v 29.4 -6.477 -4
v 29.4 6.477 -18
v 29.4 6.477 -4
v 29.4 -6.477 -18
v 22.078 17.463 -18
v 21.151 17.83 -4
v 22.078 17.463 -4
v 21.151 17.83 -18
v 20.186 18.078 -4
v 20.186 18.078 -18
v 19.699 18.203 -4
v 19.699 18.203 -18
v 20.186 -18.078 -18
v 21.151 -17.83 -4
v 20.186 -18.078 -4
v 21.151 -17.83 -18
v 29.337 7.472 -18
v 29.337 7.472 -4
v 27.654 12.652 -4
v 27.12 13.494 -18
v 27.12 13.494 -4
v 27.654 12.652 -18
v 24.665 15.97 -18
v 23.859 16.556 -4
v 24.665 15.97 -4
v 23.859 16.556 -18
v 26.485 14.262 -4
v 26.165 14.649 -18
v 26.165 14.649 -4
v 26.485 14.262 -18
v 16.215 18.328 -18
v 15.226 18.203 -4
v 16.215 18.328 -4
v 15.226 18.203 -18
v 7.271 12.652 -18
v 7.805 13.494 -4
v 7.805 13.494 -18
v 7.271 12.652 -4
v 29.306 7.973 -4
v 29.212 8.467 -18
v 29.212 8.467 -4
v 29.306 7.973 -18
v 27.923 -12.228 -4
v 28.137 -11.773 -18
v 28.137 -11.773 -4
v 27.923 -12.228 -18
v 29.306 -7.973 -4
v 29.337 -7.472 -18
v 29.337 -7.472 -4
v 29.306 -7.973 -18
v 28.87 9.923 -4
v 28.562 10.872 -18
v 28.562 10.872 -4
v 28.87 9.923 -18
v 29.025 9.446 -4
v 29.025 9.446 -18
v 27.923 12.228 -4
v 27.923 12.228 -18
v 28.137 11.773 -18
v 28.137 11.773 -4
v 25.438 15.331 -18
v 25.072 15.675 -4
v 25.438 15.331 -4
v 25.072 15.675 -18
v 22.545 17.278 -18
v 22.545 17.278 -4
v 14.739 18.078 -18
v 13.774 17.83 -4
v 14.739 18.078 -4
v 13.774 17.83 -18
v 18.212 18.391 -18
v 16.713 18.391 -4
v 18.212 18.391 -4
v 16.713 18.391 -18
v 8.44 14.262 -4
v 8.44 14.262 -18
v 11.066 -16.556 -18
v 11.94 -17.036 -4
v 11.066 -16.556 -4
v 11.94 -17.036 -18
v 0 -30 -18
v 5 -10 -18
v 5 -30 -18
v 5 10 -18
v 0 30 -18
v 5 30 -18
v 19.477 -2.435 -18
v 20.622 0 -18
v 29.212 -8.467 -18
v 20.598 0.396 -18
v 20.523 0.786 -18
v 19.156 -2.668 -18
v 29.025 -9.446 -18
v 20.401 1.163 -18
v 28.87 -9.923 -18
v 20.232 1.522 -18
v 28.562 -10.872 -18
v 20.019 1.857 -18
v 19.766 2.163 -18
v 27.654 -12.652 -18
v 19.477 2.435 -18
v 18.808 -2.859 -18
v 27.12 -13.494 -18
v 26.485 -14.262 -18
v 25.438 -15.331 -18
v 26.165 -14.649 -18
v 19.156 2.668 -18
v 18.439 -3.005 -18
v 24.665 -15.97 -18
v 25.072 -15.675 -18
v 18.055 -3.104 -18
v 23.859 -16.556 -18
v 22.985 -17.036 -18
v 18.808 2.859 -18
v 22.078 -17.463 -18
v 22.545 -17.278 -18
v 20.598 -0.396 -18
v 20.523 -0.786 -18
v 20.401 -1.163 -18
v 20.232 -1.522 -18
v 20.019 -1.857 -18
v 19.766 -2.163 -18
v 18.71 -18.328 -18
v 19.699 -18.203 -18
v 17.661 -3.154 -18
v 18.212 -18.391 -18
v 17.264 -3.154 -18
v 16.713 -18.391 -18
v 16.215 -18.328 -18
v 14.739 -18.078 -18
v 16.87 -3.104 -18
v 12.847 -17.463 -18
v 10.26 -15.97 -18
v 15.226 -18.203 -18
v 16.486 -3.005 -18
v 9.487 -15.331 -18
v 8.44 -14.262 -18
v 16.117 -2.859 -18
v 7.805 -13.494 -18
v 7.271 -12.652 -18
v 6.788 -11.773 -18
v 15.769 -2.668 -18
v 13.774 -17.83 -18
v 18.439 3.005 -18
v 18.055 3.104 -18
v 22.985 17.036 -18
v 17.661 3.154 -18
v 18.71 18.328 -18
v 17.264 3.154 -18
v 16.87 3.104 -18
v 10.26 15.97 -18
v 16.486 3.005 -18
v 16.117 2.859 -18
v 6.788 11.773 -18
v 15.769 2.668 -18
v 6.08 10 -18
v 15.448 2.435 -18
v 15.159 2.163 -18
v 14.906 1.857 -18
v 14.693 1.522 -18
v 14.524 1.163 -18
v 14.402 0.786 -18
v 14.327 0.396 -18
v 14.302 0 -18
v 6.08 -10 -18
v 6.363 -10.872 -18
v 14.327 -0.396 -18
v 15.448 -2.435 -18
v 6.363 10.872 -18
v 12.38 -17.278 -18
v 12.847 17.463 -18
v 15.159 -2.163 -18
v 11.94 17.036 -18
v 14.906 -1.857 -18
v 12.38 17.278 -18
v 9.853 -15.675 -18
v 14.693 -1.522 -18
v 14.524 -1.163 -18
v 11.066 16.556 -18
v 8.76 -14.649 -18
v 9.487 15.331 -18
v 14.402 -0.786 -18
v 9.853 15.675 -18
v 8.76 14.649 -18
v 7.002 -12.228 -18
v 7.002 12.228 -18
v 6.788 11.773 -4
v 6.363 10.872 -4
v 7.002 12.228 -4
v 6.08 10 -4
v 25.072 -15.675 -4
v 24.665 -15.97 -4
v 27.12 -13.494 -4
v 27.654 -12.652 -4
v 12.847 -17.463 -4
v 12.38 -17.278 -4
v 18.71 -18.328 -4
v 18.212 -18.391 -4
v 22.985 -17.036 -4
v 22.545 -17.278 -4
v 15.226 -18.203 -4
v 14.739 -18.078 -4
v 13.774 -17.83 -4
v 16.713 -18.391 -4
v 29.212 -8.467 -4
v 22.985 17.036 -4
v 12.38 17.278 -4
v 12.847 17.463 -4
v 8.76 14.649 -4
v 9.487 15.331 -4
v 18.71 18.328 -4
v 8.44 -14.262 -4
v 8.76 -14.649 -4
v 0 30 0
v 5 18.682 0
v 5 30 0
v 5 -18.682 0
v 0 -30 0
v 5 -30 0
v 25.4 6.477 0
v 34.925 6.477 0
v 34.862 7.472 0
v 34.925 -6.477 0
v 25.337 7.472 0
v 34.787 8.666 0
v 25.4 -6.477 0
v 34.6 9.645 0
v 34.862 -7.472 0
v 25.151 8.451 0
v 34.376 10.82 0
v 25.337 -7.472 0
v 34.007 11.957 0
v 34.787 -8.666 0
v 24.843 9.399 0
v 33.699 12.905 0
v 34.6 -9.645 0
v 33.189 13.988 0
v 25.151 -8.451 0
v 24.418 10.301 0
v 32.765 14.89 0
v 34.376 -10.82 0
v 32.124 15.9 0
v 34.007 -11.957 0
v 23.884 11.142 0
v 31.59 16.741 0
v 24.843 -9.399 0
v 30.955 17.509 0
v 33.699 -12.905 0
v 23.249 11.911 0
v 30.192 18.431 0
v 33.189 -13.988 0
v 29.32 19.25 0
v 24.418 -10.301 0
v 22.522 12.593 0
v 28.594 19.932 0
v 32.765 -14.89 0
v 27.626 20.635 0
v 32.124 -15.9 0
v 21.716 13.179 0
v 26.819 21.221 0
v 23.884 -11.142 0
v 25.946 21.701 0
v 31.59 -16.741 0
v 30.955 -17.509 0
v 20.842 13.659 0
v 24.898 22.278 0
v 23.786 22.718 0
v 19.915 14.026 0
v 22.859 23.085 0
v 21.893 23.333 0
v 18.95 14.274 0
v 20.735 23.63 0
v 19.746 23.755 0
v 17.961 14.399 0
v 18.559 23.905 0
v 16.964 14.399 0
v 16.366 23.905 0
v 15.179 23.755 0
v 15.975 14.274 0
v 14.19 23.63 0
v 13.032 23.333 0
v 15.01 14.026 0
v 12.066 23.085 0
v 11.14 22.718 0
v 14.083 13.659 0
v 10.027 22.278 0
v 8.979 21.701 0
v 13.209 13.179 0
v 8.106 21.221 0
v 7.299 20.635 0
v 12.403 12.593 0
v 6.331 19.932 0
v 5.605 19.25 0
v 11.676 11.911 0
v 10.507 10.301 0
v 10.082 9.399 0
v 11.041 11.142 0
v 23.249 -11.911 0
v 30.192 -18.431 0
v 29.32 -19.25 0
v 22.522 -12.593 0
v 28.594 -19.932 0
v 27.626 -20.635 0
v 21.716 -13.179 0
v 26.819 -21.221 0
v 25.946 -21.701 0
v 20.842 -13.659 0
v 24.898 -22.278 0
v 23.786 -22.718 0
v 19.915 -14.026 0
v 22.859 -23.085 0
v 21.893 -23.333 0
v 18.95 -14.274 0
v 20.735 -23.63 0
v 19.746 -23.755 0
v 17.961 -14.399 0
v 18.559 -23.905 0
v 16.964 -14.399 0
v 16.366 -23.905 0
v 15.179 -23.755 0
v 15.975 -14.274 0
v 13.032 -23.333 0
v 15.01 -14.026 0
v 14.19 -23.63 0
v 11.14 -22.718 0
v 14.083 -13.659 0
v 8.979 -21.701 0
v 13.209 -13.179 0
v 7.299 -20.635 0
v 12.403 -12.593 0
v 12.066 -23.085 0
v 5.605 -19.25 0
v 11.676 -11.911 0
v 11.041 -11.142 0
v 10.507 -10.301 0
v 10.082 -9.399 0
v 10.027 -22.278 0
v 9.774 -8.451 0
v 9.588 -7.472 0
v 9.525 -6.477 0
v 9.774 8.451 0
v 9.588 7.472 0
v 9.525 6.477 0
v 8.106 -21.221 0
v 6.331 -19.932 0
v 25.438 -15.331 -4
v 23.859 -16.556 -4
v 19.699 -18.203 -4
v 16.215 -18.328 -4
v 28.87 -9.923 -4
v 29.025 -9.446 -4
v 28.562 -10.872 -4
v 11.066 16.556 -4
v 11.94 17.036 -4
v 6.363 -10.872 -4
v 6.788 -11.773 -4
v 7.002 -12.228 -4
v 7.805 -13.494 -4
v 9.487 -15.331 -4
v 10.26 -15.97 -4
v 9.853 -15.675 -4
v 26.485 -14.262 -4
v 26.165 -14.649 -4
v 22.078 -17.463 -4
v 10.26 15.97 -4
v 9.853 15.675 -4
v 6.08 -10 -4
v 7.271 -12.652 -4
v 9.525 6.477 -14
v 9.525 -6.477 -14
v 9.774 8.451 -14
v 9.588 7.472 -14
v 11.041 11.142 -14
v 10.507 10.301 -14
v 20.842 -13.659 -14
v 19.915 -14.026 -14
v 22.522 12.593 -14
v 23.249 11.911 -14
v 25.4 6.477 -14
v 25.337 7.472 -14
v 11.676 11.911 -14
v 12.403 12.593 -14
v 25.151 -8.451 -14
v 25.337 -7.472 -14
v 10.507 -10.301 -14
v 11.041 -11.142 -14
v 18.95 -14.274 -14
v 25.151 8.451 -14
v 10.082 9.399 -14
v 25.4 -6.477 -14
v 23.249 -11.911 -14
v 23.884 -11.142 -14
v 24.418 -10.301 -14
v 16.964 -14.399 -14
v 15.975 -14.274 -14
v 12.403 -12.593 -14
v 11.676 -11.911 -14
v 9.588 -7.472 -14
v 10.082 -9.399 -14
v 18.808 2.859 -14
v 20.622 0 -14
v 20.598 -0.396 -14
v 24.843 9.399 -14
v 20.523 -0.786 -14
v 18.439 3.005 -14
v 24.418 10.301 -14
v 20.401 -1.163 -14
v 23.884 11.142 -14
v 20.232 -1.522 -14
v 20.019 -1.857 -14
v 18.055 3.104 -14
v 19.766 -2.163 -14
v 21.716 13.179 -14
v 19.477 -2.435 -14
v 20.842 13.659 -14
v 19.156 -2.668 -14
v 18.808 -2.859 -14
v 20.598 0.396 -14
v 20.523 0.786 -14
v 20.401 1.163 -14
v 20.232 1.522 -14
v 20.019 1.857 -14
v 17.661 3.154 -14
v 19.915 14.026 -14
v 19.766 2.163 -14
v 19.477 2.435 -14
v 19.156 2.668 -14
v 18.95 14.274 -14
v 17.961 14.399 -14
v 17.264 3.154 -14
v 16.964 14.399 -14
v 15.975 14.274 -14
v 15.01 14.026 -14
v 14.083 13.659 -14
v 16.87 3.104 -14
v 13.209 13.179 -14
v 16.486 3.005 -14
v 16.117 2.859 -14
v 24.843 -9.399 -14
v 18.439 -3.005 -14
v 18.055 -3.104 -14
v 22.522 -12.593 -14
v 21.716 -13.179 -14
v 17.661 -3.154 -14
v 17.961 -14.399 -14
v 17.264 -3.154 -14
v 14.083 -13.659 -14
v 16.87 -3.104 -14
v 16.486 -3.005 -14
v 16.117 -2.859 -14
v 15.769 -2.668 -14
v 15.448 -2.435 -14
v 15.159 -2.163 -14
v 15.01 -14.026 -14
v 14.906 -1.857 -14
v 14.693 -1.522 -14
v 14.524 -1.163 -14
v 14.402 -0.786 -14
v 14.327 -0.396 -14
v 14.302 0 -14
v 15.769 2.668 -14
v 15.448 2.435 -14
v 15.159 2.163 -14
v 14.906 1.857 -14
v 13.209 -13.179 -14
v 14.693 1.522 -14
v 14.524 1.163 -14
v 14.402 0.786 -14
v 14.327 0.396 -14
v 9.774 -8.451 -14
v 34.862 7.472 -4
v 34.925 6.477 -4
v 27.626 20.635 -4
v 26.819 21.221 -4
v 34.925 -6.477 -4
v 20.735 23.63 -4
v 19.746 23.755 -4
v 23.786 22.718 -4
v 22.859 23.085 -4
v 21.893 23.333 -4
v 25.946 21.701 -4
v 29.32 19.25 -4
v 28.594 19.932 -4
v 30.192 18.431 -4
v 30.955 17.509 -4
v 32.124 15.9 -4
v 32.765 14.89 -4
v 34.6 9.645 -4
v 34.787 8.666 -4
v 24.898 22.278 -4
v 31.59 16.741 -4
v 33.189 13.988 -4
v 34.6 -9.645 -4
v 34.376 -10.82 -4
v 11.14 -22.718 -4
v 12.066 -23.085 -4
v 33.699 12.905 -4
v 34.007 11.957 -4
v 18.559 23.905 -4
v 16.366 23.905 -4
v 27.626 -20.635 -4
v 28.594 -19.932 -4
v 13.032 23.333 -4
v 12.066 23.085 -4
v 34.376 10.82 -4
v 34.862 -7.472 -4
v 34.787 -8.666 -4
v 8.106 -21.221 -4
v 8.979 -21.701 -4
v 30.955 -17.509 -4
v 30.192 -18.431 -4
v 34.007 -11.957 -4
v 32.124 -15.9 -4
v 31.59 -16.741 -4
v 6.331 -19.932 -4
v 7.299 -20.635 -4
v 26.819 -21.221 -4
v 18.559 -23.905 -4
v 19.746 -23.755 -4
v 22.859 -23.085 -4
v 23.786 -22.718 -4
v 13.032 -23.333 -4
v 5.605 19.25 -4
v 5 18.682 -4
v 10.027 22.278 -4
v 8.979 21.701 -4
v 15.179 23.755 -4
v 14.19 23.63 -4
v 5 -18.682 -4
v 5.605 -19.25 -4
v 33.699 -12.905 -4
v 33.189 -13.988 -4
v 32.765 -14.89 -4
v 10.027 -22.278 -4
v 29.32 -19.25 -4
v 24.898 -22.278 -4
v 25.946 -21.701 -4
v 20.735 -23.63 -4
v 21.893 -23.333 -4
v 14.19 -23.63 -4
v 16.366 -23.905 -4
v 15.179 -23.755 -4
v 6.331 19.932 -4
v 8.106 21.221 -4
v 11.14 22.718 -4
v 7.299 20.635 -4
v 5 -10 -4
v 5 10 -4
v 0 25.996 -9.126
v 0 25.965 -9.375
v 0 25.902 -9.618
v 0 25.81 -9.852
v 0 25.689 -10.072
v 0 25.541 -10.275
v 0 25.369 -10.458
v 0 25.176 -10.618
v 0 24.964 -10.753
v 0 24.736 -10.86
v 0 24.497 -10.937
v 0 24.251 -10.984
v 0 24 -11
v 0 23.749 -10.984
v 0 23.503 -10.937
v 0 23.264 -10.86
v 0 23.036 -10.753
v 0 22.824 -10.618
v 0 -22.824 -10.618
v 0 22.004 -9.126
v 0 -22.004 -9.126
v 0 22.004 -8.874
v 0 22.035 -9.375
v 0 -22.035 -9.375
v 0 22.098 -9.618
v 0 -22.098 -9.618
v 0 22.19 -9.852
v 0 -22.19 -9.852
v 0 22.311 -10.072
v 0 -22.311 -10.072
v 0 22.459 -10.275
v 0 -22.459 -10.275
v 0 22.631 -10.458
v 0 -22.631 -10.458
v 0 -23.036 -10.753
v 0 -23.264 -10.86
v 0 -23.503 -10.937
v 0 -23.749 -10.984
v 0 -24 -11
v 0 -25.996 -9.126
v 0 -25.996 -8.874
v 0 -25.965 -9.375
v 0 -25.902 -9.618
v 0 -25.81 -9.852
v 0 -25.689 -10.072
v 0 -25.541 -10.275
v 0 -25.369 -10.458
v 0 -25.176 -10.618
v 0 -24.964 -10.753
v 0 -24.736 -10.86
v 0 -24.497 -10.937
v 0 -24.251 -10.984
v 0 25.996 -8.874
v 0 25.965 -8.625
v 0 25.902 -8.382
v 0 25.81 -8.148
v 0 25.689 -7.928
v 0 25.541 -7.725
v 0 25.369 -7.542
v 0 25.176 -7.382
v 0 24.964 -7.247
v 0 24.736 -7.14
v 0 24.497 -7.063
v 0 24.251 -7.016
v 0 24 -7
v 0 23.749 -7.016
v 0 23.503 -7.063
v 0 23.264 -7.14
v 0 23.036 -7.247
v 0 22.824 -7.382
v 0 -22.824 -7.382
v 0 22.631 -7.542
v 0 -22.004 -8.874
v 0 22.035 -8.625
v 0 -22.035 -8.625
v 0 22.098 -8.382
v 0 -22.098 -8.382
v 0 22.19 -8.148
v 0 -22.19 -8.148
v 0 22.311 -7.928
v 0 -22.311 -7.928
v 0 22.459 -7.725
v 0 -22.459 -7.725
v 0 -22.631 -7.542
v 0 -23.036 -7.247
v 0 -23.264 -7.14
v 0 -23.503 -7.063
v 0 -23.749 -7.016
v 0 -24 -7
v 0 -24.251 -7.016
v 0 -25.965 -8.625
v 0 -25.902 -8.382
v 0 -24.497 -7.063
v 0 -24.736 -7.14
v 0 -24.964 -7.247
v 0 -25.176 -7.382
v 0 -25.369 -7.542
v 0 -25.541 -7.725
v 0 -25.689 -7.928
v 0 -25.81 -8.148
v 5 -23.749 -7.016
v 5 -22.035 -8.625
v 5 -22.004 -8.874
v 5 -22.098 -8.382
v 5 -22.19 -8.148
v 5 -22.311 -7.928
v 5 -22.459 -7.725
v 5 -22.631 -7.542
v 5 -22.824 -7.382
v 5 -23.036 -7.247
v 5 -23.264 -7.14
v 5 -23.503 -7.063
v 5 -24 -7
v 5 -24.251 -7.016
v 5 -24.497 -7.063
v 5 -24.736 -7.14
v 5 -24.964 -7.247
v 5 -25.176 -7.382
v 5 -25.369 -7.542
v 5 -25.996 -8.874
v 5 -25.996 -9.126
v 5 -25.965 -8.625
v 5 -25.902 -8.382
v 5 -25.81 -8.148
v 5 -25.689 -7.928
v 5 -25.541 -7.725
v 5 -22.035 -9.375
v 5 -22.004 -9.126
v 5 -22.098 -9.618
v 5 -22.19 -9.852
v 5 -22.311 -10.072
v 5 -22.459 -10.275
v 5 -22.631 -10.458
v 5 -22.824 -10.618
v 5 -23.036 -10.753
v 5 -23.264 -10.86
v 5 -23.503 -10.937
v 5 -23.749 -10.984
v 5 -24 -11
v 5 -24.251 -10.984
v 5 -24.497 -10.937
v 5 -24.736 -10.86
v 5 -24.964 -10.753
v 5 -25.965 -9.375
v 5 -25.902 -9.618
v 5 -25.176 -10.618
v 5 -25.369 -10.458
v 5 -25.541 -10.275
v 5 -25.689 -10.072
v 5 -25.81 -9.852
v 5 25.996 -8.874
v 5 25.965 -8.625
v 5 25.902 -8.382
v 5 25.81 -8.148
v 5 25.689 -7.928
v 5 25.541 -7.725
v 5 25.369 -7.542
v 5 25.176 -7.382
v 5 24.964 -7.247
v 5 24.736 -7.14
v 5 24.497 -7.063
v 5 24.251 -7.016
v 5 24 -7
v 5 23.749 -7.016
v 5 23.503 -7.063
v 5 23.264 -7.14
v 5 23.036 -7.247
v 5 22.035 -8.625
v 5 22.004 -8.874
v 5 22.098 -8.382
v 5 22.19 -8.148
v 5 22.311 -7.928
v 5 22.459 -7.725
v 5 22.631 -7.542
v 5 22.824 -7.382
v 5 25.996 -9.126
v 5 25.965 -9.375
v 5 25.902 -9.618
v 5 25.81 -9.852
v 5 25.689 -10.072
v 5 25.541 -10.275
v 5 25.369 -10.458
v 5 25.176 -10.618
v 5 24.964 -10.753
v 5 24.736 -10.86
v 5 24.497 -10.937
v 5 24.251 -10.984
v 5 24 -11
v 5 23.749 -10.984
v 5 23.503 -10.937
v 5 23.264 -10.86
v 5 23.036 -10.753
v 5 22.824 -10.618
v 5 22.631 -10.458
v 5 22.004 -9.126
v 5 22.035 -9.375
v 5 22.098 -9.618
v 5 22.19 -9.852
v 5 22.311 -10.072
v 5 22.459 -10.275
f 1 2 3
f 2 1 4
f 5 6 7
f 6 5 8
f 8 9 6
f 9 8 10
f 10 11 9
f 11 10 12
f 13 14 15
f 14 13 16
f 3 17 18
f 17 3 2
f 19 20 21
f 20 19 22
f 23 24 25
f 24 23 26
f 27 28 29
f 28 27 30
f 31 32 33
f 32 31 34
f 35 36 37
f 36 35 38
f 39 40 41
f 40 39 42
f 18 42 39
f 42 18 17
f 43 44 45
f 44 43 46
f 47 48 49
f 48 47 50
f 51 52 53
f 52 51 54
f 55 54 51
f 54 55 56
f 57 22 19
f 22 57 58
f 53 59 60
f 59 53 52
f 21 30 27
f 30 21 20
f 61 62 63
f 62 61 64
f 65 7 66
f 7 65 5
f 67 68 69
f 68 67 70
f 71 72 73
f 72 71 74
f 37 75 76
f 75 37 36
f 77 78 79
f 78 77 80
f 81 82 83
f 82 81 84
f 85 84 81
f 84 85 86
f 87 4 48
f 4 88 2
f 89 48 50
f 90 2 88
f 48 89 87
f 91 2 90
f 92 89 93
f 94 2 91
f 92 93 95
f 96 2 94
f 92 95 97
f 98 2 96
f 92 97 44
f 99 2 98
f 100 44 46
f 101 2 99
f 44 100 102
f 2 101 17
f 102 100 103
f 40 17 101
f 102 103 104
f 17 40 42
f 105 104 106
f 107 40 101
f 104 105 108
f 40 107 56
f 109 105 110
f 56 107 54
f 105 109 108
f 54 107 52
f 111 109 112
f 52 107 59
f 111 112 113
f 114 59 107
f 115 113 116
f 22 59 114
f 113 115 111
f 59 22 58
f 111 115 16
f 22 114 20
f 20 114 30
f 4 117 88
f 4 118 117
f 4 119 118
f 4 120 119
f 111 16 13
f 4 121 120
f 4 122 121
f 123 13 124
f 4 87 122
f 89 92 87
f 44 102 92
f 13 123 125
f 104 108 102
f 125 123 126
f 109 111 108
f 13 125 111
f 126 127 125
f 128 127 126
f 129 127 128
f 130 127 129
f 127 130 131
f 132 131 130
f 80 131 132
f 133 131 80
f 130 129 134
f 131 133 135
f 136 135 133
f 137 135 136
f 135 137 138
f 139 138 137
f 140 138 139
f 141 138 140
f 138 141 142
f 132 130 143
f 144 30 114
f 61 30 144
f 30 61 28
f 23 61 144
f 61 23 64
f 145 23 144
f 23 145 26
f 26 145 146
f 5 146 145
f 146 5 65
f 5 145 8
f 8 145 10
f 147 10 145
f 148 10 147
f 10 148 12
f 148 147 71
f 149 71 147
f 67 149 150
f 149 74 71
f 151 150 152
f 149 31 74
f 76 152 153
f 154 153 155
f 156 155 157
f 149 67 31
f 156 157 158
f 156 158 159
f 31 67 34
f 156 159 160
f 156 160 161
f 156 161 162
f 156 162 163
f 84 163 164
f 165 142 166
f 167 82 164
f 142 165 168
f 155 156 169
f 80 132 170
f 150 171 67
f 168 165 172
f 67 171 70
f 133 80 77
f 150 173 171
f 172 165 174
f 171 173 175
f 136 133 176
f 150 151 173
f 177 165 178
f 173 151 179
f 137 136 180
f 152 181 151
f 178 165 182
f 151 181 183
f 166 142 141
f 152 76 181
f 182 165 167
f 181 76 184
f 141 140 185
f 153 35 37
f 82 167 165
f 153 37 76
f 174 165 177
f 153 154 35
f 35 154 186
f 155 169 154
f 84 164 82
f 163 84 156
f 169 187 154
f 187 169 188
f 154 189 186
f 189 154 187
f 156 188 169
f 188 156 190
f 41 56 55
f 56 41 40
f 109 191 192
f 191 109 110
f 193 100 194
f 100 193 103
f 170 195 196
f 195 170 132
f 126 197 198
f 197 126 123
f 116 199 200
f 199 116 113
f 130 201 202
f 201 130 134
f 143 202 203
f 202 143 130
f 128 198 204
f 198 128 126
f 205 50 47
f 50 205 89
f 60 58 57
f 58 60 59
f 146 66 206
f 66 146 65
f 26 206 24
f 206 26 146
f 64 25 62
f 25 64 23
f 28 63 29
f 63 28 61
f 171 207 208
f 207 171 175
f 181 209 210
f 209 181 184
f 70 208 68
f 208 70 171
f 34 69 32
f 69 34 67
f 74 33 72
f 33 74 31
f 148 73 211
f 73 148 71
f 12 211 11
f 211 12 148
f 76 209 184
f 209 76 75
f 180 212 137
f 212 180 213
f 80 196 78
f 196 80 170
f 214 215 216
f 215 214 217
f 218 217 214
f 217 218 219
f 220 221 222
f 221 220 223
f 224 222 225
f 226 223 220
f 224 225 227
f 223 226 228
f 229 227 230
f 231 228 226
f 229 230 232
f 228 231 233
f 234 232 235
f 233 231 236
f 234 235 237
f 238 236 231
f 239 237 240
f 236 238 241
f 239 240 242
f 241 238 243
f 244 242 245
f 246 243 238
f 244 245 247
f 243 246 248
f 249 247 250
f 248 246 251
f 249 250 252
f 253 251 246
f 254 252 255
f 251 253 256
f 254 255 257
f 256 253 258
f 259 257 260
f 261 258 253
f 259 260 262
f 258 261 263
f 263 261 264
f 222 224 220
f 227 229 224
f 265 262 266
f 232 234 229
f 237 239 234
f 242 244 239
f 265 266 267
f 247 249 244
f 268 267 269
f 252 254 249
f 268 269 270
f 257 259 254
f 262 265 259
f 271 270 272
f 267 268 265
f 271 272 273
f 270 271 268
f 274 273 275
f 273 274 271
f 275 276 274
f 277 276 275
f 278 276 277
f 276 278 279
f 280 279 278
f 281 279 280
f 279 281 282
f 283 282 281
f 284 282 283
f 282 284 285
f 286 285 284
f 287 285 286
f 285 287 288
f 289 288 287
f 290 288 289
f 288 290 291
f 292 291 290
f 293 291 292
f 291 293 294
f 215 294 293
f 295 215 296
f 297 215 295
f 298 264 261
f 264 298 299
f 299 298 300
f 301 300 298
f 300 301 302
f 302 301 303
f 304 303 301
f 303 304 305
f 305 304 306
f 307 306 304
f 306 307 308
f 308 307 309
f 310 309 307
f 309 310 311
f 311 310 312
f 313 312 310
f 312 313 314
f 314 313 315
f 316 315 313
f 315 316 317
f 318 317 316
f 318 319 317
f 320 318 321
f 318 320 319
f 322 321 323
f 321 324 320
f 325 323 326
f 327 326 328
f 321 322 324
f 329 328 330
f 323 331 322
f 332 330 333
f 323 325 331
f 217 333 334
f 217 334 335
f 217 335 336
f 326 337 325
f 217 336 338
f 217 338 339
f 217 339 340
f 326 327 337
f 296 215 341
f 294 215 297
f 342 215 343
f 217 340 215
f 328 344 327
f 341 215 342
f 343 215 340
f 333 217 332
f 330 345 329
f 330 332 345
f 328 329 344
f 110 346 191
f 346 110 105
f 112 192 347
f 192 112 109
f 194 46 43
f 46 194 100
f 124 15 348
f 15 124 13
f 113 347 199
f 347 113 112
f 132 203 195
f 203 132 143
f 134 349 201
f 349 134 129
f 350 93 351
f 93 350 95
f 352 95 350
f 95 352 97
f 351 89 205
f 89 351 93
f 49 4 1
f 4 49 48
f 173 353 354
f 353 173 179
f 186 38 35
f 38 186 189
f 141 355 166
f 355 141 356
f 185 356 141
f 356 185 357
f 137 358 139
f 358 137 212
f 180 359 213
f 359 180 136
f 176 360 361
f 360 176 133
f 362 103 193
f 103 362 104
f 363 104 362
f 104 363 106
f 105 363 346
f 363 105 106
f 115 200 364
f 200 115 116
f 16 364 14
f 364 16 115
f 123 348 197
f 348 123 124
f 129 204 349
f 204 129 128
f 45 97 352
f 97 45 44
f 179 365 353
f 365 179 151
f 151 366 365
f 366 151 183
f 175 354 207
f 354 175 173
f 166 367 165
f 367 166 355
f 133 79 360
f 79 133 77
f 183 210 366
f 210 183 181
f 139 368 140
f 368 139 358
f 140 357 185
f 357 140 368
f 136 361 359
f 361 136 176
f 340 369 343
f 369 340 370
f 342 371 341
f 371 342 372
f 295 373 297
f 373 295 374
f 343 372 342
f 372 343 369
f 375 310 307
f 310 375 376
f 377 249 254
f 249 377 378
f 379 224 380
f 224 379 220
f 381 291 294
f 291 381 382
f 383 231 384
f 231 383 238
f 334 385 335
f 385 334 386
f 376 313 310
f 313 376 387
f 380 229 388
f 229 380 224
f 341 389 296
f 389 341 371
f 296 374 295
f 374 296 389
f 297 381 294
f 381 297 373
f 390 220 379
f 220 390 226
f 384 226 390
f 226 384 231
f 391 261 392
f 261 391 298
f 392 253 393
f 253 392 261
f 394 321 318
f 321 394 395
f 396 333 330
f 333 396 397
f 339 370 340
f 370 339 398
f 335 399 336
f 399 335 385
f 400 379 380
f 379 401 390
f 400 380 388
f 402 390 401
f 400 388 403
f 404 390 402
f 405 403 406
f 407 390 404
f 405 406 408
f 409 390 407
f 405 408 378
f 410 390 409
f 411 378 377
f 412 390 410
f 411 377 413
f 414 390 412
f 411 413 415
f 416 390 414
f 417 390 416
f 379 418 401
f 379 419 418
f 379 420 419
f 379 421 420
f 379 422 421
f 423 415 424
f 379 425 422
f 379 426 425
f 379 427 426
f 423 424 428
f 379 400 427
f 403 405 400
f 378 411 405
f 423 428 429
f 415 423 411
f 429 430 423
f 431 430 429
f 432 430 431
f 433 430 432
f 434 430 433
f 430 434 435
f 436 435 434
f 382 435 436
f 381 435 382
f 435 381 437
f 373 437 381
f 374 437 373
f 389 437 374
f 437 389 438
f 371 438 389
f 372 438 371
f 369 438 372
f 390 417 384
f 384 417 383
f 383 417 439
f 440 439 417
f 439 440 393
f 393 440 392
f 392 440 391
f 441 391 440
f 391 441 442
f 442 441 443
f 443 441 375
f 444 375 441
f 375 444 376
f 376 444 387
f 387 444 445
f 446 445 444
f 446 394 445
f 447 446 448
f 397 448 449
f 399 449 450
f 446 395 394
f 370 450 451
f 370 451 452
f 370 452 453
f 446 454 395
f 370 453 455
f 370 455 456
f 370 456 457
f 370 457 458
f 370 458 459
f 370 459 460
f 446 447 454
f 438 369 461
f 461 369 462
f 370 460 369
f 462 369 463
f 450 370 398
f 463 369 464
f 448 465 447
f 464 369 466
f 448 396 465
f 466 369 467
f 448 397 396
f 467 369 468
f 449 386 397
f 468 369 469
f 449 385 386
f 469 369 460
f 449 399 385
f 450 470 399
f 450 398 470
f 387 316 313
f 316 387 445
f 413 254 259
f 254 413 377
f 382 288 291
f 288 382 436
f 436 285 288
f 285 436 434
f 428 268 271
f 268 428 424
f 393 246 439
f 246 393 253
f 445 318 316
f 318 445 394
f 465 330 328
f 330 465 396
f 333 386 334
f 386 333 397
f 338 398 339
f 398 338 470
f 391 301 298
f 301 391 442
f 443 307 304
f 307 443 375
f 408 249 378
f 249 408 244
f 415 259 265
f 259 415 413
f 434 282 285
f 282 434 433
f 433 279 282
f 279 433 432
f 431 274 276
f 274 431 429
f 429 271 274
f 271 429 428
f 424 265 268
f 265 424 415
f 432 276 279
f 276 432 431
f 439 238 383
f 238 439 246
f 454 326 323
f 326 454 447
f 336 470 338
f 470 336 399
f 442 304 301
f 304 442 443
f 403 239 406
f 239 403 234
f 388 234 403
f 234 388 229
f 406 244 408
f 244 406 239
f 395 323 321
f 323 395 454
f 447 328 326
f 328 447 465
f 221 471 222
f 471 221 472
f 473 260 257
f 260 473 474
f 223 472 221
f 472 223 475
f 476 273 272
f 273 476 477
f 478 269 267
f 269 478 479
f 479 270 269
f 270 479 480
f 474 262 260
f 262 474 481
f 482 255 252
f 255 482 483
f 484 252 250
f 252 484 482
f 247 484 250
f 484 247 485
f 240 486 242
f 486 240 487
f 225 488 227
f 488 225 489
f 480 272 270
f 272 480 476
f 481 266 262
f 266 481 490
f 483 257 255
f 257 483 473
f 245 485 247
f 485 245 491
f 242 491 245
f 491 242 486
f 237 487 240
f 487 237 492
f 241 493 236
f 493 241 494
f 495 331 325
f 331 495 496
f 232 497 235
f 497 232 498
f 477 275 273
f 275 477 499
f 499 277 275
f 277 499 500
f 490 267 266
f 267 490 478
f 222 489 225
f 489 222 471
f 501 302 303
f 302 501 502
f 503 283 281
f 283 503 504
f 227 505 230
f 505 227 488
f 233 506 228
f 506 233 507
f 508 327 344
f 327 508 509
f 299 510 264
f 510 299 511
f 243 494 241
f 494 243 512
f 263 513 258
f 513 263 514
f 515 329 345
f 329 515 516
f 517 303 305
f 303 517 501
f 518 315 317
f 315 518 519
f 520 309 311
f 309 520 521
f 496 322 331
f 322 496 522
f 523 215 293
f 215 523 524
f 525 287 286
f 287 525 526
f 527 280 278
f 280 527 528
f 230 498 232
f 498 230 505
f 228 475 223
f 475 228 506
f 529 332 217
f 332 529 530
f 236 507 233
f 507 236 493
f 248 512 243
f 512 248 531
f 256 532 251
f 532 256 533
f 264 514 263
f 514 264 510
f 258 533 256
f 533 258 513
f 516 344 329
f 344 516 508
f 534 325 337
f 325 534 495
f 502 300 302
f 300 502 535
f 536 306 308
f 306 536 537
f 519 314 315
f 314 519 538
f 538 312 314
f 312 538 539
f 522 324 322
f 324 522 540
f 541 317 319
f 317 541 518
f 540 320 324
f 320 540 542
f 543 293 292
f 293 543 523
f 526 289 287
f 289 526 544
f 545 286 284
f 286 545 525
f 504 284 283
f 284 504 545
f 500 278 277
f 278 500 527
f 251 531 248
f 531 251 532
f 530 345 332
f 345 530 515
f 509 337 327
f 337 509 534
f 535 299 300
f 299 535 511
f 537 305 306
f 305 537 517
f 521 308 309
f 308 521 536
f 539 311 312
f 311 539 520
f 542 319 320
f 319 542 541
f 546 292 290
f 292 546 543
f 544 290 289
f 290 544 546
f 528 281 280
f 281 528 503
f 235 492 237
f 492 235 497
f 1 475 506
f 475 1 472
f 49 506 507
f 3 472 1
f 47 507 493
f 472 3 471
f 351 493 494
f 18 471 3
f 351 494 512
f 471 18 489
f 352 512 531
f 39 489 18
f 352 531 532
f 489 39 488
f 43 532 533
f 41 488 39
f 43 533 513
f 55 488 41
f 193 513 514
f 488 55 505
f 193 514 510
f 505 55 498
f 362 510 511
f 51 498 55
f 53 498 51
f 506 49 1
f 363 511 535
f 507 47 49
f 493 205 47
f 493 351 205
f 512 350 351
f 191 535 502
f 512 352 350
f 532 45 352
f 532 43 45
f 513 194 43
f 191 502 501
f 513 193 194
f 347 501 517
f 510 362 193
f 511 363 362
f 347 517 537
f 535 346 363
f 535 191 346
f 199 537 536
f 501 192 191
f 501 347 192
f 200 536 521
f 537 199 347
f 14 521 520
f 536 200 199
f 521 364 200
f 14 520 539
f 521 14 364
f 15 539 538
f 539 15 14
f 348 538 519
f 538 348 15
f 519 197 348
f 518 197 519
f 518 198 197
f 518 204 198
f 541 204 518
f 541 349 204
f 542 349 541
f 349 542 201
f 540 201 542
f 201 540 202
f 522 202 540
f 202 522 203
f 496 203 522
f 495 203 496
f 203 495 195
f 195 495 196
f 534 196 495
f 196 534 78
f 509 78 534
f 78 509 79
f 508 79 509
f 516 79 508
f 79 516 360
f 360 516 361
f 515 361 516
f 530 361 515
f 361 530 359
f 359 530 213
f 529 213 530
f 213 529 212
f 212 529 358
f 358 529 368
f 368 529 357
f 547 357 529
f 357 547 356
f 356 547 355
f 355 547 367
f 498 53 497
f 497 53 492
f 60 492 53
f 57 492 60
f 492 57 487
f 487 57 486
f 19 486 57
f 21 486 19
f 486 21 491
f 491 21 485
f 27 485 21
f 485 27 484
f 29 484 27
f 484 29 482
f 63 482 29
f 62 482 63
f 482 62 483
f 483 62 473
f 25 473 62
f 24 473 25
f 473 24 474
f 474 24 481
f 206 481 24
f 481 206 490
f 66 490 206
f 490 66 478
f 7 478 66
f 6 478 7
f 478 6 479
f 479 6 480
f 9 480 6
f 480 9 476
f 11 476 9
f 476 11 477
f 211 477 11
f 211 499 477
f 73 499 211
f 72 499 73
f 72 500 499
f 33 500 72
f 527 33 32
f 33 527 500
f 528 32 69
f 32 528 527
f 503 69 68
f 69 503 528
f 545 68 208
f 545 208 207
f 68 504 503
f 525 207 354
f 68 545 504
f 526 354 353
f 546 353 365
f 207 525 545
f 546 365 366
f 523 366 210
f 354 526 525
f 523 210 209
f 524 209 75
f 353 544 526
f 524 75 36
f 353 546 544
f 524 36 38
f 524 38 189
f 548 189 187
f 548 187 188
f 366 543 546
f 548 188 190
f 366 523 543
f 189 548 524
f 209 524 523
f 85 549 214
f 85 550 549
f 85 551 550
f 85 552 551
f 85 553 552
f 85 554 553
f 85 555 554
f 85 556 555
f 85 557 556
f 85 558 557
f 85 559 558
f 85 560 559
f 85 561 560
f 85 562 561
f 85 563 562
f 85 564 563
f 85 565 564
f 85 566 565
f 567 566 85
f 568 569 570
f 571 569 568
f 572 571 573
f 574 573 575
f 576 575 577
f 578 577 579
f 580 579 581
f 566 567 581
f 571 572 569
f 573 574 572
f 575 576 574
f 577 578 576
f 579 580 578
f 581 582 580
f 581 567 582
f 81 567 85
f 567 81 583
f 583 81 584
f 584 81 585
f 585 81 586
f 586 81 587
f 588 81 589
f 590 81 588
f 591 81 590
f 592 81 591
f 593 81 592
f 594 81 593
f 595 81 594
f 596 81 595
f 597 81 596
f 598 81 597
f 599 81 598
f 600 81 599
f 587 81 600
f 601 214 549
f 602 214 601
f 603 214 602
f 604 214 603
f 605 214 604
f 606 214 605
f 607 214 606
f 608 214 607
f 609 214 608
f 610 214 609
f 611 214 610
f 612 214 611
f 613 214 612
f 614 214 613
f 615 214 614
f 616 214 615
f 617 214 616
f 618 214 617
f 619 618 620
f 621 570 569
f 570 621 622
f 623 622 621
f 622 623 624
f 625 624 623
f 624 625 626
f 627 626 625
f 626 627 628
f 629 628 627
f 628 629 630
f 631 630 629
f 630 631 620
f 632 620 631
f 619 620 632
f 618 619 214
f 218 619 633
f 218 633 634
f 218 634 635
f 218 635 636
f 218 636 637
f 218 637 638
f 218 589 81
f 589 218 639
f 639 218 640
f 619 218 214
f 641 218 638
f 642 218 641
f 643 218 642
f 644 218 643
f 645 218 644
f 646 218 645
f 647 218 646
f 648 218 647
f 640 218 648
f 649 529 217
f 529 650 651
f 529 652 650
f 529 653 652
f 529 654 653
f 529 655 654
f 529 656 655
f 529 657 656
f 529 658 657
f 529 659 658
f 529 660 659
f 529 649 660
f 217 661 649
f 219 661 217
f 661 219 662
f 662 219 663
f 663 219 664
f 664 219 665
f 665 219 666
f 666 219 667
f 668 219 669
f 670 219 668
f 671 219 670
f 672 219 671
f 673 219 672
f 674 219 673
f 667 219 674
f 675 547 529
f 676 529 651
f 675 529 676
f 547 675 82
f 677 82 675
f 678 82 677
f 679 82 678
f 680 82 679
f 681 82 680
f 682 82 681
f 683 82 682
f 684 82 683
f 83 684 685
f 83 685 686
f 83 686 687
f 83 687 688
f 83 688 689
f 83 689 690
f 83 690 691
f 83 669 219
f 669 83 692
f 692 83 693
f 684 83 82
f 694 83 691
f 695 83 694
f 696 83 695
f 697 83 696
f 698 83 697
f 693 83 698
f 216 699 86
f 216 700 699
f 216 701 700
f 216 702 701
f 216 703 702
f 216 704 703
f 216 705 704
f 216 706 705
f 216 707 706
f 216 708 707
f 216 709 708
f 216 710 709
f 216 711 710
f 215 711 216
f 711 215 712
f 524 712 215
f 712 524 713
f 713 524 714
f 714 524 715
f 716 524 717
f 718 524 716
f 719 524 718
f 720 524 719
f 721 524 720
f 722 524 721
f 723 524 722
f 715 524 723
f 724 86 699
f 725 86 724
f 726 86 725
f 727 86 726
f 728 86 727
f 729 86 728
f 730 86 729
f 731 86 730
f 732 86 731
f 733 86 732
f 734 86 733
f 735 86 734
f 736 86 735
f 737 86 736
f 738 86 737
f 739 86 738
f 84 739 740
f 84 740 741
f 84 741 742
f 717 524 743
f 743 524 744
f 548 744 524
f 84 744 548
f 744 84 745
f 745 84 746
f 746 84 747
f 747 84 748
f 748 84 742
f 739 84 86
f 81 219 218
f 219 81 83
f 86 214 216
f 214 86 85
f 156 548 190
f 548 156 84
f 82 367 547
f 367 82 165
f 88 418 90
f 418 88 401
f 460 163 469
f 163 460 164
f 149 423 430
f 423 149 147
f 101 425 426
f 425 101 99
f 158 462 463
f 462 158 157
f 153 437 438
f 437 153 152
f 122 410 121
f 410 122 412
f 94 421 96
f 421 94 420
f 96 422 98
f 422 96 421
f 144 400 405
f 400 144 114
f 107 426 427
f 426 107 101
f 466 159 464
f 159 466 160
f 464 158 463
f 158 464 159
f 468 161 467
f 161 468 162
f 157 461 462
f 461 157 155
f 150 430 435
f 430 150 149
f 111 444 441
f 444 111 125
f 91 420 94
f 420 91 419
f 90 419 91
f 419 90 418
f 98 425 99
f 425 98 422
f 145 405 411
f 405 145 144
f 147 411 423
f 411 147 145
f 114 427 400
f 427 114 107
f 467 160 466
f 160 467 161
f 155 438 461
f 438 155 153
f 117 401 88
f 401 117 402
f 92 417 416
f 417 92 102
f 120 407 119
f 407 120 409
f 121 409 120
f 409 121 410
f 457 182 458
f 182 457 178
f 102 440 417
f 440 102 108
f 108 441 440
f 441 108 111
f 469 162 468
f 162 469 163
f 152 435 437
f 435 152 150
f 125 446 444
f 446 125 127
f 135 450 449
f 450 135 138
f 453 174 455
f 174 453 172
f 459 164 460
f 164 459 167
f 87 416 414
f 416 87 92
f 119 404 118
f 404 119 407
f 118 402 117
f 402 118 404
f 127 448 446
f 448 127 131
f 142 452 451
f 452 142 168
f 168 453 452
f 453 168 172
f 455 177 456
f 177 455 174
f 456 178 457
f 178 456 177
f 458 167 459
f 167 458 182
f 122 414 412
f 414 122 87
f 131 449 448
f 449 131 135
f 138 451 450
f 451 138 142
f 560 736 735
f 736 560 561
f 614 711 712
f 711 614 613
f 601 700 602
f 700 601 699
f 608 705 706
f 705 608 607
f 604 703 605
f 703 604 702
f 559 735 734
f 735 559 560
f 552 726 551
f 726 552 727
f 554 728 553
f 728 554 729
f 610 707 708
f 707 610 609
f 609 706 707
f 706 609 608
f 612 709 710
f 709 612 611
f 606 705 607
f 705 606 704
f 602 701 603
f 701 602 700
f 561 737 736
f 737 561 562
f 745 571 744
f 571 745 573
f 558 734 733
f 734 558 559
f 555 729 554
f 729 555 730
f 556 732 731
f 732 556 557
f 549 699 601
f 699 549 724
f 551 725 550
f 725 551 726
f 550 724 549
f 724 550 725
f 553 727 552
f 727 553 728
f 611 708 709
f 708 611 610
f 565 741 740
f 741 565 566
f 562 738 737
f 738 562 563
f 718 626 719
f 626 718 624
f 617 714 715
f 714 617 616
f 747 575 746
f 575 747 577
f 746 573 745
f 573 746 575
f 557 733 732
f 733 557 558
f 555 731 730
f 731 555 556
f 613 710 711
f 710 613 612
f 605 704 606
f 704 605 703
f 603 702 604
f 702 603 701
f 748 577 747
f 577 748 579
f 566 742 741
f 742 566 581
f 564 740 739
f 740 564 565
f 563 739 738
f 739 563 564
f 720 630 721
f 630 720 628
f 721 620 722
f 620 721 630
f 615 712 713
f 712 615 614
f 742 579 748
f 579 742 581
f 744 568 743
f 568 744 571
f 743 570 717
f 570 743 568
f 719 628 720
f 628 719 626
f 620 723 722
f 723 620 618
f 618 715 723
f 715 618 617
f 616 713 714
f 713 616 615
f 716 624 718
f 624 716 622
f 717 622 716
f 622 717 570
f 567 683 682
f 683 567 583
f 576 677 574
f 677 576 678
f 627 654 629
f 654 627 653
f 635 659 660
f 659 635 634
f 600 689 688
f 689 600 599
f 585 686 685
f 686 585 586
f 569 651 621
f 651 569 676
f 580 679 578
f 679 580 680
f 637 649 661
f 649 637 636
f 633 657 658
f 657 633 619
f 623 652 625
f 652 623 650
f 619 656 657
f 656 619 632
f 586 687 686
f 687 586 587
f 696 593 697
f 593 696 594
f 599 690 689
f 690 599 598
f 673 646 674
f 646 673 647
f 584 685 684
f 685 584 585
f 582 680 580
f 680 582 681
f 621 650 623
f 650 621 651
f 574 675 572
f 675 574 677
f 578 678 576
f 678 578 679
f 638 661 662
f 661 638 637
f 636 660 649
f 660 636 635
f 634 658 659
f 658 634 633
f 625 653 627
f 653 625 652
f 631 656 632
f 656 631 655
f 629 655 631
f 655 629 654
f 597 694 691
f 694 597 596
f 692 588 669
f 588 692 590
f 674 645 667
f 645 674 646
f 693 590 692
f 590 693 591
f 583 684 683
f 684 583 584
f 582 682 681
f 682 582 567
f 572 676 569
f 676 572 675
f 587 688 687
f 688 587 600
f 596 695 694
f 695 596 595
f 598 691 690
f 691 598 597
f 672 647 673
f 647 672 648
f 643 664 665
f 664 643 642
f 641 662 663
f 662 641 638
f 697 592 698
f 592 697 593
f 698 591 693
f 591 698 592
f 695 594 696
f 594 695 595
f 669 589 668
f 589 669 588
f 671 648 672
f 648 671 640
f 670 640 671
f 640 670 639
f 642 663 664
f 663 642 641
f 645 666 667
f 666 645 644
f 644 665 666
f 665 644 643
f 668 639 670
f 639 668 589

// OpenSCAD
$fn=50;

inches = 25.4;

depth = 14;  // mm
width = 0.625*inches;
thickness = 4.0;  // Wall thickness
flare = 0.375 * inches;  // Additional radius of top rim


module cavity() {
    hull() {
        translate([0,-0.255*inches,0]) cylinder(depth,d=width);
        translate([0,0.255*inches,0]) cylinder(depth,d=width);
    }
}


module bowl() {
    translate([0,0,-depth]) {
        difference() {
            minkowski() {
                cavity();
                translate([0,0,-thickness/2]) cylinder(thickness,r=thickness,center=true);
            }
            cavity();
            translate([0,0,2*thickness]) cavity();
        }
    }  
}
    
    
module rim() {
    translate([0,0,-thickness/2]) {
        intersection() {
            cube([3*inches, 3*inches, thickness], center=true);
            translate([0,0,-5]) {
                difference() {
                    minkowski() {
                        cavity();
                        cylinder(thickness,r=flare,center=true);
                    }
                    cavity();
                    translate([0,0,20]) cavity();
                }
            }
        }
    }
}

hole_y = 24;
hole_z = (depth+thickness)/2;

module bracket() {
    height = 2*(hole_y+6);
    translate([0,-height/2,-(2*hole_z)]) cube([5, height, 2*hole_z]);
    translate([0,-10,-(2*hole_z)]) cube([8, 20, 2*hole_z]);
}

difference() {
    union() {
        translate([(width/2)+flare,0,0]) {
            bowl();
            rim();
        }
        bracket();
    }

    translate([(width/2)+flare,0,-depth]) cylinder(40, d=6.32, center=true);
    #translate([0,hole_y,-hole_z]) rotate([0,90,0]) cylinder(20, d=4.0, center=true);
    #translate([0,-hole_y,-hole_z]) rotate([0,90,0]) cylinder(20, d=4.0, center=true);

}
